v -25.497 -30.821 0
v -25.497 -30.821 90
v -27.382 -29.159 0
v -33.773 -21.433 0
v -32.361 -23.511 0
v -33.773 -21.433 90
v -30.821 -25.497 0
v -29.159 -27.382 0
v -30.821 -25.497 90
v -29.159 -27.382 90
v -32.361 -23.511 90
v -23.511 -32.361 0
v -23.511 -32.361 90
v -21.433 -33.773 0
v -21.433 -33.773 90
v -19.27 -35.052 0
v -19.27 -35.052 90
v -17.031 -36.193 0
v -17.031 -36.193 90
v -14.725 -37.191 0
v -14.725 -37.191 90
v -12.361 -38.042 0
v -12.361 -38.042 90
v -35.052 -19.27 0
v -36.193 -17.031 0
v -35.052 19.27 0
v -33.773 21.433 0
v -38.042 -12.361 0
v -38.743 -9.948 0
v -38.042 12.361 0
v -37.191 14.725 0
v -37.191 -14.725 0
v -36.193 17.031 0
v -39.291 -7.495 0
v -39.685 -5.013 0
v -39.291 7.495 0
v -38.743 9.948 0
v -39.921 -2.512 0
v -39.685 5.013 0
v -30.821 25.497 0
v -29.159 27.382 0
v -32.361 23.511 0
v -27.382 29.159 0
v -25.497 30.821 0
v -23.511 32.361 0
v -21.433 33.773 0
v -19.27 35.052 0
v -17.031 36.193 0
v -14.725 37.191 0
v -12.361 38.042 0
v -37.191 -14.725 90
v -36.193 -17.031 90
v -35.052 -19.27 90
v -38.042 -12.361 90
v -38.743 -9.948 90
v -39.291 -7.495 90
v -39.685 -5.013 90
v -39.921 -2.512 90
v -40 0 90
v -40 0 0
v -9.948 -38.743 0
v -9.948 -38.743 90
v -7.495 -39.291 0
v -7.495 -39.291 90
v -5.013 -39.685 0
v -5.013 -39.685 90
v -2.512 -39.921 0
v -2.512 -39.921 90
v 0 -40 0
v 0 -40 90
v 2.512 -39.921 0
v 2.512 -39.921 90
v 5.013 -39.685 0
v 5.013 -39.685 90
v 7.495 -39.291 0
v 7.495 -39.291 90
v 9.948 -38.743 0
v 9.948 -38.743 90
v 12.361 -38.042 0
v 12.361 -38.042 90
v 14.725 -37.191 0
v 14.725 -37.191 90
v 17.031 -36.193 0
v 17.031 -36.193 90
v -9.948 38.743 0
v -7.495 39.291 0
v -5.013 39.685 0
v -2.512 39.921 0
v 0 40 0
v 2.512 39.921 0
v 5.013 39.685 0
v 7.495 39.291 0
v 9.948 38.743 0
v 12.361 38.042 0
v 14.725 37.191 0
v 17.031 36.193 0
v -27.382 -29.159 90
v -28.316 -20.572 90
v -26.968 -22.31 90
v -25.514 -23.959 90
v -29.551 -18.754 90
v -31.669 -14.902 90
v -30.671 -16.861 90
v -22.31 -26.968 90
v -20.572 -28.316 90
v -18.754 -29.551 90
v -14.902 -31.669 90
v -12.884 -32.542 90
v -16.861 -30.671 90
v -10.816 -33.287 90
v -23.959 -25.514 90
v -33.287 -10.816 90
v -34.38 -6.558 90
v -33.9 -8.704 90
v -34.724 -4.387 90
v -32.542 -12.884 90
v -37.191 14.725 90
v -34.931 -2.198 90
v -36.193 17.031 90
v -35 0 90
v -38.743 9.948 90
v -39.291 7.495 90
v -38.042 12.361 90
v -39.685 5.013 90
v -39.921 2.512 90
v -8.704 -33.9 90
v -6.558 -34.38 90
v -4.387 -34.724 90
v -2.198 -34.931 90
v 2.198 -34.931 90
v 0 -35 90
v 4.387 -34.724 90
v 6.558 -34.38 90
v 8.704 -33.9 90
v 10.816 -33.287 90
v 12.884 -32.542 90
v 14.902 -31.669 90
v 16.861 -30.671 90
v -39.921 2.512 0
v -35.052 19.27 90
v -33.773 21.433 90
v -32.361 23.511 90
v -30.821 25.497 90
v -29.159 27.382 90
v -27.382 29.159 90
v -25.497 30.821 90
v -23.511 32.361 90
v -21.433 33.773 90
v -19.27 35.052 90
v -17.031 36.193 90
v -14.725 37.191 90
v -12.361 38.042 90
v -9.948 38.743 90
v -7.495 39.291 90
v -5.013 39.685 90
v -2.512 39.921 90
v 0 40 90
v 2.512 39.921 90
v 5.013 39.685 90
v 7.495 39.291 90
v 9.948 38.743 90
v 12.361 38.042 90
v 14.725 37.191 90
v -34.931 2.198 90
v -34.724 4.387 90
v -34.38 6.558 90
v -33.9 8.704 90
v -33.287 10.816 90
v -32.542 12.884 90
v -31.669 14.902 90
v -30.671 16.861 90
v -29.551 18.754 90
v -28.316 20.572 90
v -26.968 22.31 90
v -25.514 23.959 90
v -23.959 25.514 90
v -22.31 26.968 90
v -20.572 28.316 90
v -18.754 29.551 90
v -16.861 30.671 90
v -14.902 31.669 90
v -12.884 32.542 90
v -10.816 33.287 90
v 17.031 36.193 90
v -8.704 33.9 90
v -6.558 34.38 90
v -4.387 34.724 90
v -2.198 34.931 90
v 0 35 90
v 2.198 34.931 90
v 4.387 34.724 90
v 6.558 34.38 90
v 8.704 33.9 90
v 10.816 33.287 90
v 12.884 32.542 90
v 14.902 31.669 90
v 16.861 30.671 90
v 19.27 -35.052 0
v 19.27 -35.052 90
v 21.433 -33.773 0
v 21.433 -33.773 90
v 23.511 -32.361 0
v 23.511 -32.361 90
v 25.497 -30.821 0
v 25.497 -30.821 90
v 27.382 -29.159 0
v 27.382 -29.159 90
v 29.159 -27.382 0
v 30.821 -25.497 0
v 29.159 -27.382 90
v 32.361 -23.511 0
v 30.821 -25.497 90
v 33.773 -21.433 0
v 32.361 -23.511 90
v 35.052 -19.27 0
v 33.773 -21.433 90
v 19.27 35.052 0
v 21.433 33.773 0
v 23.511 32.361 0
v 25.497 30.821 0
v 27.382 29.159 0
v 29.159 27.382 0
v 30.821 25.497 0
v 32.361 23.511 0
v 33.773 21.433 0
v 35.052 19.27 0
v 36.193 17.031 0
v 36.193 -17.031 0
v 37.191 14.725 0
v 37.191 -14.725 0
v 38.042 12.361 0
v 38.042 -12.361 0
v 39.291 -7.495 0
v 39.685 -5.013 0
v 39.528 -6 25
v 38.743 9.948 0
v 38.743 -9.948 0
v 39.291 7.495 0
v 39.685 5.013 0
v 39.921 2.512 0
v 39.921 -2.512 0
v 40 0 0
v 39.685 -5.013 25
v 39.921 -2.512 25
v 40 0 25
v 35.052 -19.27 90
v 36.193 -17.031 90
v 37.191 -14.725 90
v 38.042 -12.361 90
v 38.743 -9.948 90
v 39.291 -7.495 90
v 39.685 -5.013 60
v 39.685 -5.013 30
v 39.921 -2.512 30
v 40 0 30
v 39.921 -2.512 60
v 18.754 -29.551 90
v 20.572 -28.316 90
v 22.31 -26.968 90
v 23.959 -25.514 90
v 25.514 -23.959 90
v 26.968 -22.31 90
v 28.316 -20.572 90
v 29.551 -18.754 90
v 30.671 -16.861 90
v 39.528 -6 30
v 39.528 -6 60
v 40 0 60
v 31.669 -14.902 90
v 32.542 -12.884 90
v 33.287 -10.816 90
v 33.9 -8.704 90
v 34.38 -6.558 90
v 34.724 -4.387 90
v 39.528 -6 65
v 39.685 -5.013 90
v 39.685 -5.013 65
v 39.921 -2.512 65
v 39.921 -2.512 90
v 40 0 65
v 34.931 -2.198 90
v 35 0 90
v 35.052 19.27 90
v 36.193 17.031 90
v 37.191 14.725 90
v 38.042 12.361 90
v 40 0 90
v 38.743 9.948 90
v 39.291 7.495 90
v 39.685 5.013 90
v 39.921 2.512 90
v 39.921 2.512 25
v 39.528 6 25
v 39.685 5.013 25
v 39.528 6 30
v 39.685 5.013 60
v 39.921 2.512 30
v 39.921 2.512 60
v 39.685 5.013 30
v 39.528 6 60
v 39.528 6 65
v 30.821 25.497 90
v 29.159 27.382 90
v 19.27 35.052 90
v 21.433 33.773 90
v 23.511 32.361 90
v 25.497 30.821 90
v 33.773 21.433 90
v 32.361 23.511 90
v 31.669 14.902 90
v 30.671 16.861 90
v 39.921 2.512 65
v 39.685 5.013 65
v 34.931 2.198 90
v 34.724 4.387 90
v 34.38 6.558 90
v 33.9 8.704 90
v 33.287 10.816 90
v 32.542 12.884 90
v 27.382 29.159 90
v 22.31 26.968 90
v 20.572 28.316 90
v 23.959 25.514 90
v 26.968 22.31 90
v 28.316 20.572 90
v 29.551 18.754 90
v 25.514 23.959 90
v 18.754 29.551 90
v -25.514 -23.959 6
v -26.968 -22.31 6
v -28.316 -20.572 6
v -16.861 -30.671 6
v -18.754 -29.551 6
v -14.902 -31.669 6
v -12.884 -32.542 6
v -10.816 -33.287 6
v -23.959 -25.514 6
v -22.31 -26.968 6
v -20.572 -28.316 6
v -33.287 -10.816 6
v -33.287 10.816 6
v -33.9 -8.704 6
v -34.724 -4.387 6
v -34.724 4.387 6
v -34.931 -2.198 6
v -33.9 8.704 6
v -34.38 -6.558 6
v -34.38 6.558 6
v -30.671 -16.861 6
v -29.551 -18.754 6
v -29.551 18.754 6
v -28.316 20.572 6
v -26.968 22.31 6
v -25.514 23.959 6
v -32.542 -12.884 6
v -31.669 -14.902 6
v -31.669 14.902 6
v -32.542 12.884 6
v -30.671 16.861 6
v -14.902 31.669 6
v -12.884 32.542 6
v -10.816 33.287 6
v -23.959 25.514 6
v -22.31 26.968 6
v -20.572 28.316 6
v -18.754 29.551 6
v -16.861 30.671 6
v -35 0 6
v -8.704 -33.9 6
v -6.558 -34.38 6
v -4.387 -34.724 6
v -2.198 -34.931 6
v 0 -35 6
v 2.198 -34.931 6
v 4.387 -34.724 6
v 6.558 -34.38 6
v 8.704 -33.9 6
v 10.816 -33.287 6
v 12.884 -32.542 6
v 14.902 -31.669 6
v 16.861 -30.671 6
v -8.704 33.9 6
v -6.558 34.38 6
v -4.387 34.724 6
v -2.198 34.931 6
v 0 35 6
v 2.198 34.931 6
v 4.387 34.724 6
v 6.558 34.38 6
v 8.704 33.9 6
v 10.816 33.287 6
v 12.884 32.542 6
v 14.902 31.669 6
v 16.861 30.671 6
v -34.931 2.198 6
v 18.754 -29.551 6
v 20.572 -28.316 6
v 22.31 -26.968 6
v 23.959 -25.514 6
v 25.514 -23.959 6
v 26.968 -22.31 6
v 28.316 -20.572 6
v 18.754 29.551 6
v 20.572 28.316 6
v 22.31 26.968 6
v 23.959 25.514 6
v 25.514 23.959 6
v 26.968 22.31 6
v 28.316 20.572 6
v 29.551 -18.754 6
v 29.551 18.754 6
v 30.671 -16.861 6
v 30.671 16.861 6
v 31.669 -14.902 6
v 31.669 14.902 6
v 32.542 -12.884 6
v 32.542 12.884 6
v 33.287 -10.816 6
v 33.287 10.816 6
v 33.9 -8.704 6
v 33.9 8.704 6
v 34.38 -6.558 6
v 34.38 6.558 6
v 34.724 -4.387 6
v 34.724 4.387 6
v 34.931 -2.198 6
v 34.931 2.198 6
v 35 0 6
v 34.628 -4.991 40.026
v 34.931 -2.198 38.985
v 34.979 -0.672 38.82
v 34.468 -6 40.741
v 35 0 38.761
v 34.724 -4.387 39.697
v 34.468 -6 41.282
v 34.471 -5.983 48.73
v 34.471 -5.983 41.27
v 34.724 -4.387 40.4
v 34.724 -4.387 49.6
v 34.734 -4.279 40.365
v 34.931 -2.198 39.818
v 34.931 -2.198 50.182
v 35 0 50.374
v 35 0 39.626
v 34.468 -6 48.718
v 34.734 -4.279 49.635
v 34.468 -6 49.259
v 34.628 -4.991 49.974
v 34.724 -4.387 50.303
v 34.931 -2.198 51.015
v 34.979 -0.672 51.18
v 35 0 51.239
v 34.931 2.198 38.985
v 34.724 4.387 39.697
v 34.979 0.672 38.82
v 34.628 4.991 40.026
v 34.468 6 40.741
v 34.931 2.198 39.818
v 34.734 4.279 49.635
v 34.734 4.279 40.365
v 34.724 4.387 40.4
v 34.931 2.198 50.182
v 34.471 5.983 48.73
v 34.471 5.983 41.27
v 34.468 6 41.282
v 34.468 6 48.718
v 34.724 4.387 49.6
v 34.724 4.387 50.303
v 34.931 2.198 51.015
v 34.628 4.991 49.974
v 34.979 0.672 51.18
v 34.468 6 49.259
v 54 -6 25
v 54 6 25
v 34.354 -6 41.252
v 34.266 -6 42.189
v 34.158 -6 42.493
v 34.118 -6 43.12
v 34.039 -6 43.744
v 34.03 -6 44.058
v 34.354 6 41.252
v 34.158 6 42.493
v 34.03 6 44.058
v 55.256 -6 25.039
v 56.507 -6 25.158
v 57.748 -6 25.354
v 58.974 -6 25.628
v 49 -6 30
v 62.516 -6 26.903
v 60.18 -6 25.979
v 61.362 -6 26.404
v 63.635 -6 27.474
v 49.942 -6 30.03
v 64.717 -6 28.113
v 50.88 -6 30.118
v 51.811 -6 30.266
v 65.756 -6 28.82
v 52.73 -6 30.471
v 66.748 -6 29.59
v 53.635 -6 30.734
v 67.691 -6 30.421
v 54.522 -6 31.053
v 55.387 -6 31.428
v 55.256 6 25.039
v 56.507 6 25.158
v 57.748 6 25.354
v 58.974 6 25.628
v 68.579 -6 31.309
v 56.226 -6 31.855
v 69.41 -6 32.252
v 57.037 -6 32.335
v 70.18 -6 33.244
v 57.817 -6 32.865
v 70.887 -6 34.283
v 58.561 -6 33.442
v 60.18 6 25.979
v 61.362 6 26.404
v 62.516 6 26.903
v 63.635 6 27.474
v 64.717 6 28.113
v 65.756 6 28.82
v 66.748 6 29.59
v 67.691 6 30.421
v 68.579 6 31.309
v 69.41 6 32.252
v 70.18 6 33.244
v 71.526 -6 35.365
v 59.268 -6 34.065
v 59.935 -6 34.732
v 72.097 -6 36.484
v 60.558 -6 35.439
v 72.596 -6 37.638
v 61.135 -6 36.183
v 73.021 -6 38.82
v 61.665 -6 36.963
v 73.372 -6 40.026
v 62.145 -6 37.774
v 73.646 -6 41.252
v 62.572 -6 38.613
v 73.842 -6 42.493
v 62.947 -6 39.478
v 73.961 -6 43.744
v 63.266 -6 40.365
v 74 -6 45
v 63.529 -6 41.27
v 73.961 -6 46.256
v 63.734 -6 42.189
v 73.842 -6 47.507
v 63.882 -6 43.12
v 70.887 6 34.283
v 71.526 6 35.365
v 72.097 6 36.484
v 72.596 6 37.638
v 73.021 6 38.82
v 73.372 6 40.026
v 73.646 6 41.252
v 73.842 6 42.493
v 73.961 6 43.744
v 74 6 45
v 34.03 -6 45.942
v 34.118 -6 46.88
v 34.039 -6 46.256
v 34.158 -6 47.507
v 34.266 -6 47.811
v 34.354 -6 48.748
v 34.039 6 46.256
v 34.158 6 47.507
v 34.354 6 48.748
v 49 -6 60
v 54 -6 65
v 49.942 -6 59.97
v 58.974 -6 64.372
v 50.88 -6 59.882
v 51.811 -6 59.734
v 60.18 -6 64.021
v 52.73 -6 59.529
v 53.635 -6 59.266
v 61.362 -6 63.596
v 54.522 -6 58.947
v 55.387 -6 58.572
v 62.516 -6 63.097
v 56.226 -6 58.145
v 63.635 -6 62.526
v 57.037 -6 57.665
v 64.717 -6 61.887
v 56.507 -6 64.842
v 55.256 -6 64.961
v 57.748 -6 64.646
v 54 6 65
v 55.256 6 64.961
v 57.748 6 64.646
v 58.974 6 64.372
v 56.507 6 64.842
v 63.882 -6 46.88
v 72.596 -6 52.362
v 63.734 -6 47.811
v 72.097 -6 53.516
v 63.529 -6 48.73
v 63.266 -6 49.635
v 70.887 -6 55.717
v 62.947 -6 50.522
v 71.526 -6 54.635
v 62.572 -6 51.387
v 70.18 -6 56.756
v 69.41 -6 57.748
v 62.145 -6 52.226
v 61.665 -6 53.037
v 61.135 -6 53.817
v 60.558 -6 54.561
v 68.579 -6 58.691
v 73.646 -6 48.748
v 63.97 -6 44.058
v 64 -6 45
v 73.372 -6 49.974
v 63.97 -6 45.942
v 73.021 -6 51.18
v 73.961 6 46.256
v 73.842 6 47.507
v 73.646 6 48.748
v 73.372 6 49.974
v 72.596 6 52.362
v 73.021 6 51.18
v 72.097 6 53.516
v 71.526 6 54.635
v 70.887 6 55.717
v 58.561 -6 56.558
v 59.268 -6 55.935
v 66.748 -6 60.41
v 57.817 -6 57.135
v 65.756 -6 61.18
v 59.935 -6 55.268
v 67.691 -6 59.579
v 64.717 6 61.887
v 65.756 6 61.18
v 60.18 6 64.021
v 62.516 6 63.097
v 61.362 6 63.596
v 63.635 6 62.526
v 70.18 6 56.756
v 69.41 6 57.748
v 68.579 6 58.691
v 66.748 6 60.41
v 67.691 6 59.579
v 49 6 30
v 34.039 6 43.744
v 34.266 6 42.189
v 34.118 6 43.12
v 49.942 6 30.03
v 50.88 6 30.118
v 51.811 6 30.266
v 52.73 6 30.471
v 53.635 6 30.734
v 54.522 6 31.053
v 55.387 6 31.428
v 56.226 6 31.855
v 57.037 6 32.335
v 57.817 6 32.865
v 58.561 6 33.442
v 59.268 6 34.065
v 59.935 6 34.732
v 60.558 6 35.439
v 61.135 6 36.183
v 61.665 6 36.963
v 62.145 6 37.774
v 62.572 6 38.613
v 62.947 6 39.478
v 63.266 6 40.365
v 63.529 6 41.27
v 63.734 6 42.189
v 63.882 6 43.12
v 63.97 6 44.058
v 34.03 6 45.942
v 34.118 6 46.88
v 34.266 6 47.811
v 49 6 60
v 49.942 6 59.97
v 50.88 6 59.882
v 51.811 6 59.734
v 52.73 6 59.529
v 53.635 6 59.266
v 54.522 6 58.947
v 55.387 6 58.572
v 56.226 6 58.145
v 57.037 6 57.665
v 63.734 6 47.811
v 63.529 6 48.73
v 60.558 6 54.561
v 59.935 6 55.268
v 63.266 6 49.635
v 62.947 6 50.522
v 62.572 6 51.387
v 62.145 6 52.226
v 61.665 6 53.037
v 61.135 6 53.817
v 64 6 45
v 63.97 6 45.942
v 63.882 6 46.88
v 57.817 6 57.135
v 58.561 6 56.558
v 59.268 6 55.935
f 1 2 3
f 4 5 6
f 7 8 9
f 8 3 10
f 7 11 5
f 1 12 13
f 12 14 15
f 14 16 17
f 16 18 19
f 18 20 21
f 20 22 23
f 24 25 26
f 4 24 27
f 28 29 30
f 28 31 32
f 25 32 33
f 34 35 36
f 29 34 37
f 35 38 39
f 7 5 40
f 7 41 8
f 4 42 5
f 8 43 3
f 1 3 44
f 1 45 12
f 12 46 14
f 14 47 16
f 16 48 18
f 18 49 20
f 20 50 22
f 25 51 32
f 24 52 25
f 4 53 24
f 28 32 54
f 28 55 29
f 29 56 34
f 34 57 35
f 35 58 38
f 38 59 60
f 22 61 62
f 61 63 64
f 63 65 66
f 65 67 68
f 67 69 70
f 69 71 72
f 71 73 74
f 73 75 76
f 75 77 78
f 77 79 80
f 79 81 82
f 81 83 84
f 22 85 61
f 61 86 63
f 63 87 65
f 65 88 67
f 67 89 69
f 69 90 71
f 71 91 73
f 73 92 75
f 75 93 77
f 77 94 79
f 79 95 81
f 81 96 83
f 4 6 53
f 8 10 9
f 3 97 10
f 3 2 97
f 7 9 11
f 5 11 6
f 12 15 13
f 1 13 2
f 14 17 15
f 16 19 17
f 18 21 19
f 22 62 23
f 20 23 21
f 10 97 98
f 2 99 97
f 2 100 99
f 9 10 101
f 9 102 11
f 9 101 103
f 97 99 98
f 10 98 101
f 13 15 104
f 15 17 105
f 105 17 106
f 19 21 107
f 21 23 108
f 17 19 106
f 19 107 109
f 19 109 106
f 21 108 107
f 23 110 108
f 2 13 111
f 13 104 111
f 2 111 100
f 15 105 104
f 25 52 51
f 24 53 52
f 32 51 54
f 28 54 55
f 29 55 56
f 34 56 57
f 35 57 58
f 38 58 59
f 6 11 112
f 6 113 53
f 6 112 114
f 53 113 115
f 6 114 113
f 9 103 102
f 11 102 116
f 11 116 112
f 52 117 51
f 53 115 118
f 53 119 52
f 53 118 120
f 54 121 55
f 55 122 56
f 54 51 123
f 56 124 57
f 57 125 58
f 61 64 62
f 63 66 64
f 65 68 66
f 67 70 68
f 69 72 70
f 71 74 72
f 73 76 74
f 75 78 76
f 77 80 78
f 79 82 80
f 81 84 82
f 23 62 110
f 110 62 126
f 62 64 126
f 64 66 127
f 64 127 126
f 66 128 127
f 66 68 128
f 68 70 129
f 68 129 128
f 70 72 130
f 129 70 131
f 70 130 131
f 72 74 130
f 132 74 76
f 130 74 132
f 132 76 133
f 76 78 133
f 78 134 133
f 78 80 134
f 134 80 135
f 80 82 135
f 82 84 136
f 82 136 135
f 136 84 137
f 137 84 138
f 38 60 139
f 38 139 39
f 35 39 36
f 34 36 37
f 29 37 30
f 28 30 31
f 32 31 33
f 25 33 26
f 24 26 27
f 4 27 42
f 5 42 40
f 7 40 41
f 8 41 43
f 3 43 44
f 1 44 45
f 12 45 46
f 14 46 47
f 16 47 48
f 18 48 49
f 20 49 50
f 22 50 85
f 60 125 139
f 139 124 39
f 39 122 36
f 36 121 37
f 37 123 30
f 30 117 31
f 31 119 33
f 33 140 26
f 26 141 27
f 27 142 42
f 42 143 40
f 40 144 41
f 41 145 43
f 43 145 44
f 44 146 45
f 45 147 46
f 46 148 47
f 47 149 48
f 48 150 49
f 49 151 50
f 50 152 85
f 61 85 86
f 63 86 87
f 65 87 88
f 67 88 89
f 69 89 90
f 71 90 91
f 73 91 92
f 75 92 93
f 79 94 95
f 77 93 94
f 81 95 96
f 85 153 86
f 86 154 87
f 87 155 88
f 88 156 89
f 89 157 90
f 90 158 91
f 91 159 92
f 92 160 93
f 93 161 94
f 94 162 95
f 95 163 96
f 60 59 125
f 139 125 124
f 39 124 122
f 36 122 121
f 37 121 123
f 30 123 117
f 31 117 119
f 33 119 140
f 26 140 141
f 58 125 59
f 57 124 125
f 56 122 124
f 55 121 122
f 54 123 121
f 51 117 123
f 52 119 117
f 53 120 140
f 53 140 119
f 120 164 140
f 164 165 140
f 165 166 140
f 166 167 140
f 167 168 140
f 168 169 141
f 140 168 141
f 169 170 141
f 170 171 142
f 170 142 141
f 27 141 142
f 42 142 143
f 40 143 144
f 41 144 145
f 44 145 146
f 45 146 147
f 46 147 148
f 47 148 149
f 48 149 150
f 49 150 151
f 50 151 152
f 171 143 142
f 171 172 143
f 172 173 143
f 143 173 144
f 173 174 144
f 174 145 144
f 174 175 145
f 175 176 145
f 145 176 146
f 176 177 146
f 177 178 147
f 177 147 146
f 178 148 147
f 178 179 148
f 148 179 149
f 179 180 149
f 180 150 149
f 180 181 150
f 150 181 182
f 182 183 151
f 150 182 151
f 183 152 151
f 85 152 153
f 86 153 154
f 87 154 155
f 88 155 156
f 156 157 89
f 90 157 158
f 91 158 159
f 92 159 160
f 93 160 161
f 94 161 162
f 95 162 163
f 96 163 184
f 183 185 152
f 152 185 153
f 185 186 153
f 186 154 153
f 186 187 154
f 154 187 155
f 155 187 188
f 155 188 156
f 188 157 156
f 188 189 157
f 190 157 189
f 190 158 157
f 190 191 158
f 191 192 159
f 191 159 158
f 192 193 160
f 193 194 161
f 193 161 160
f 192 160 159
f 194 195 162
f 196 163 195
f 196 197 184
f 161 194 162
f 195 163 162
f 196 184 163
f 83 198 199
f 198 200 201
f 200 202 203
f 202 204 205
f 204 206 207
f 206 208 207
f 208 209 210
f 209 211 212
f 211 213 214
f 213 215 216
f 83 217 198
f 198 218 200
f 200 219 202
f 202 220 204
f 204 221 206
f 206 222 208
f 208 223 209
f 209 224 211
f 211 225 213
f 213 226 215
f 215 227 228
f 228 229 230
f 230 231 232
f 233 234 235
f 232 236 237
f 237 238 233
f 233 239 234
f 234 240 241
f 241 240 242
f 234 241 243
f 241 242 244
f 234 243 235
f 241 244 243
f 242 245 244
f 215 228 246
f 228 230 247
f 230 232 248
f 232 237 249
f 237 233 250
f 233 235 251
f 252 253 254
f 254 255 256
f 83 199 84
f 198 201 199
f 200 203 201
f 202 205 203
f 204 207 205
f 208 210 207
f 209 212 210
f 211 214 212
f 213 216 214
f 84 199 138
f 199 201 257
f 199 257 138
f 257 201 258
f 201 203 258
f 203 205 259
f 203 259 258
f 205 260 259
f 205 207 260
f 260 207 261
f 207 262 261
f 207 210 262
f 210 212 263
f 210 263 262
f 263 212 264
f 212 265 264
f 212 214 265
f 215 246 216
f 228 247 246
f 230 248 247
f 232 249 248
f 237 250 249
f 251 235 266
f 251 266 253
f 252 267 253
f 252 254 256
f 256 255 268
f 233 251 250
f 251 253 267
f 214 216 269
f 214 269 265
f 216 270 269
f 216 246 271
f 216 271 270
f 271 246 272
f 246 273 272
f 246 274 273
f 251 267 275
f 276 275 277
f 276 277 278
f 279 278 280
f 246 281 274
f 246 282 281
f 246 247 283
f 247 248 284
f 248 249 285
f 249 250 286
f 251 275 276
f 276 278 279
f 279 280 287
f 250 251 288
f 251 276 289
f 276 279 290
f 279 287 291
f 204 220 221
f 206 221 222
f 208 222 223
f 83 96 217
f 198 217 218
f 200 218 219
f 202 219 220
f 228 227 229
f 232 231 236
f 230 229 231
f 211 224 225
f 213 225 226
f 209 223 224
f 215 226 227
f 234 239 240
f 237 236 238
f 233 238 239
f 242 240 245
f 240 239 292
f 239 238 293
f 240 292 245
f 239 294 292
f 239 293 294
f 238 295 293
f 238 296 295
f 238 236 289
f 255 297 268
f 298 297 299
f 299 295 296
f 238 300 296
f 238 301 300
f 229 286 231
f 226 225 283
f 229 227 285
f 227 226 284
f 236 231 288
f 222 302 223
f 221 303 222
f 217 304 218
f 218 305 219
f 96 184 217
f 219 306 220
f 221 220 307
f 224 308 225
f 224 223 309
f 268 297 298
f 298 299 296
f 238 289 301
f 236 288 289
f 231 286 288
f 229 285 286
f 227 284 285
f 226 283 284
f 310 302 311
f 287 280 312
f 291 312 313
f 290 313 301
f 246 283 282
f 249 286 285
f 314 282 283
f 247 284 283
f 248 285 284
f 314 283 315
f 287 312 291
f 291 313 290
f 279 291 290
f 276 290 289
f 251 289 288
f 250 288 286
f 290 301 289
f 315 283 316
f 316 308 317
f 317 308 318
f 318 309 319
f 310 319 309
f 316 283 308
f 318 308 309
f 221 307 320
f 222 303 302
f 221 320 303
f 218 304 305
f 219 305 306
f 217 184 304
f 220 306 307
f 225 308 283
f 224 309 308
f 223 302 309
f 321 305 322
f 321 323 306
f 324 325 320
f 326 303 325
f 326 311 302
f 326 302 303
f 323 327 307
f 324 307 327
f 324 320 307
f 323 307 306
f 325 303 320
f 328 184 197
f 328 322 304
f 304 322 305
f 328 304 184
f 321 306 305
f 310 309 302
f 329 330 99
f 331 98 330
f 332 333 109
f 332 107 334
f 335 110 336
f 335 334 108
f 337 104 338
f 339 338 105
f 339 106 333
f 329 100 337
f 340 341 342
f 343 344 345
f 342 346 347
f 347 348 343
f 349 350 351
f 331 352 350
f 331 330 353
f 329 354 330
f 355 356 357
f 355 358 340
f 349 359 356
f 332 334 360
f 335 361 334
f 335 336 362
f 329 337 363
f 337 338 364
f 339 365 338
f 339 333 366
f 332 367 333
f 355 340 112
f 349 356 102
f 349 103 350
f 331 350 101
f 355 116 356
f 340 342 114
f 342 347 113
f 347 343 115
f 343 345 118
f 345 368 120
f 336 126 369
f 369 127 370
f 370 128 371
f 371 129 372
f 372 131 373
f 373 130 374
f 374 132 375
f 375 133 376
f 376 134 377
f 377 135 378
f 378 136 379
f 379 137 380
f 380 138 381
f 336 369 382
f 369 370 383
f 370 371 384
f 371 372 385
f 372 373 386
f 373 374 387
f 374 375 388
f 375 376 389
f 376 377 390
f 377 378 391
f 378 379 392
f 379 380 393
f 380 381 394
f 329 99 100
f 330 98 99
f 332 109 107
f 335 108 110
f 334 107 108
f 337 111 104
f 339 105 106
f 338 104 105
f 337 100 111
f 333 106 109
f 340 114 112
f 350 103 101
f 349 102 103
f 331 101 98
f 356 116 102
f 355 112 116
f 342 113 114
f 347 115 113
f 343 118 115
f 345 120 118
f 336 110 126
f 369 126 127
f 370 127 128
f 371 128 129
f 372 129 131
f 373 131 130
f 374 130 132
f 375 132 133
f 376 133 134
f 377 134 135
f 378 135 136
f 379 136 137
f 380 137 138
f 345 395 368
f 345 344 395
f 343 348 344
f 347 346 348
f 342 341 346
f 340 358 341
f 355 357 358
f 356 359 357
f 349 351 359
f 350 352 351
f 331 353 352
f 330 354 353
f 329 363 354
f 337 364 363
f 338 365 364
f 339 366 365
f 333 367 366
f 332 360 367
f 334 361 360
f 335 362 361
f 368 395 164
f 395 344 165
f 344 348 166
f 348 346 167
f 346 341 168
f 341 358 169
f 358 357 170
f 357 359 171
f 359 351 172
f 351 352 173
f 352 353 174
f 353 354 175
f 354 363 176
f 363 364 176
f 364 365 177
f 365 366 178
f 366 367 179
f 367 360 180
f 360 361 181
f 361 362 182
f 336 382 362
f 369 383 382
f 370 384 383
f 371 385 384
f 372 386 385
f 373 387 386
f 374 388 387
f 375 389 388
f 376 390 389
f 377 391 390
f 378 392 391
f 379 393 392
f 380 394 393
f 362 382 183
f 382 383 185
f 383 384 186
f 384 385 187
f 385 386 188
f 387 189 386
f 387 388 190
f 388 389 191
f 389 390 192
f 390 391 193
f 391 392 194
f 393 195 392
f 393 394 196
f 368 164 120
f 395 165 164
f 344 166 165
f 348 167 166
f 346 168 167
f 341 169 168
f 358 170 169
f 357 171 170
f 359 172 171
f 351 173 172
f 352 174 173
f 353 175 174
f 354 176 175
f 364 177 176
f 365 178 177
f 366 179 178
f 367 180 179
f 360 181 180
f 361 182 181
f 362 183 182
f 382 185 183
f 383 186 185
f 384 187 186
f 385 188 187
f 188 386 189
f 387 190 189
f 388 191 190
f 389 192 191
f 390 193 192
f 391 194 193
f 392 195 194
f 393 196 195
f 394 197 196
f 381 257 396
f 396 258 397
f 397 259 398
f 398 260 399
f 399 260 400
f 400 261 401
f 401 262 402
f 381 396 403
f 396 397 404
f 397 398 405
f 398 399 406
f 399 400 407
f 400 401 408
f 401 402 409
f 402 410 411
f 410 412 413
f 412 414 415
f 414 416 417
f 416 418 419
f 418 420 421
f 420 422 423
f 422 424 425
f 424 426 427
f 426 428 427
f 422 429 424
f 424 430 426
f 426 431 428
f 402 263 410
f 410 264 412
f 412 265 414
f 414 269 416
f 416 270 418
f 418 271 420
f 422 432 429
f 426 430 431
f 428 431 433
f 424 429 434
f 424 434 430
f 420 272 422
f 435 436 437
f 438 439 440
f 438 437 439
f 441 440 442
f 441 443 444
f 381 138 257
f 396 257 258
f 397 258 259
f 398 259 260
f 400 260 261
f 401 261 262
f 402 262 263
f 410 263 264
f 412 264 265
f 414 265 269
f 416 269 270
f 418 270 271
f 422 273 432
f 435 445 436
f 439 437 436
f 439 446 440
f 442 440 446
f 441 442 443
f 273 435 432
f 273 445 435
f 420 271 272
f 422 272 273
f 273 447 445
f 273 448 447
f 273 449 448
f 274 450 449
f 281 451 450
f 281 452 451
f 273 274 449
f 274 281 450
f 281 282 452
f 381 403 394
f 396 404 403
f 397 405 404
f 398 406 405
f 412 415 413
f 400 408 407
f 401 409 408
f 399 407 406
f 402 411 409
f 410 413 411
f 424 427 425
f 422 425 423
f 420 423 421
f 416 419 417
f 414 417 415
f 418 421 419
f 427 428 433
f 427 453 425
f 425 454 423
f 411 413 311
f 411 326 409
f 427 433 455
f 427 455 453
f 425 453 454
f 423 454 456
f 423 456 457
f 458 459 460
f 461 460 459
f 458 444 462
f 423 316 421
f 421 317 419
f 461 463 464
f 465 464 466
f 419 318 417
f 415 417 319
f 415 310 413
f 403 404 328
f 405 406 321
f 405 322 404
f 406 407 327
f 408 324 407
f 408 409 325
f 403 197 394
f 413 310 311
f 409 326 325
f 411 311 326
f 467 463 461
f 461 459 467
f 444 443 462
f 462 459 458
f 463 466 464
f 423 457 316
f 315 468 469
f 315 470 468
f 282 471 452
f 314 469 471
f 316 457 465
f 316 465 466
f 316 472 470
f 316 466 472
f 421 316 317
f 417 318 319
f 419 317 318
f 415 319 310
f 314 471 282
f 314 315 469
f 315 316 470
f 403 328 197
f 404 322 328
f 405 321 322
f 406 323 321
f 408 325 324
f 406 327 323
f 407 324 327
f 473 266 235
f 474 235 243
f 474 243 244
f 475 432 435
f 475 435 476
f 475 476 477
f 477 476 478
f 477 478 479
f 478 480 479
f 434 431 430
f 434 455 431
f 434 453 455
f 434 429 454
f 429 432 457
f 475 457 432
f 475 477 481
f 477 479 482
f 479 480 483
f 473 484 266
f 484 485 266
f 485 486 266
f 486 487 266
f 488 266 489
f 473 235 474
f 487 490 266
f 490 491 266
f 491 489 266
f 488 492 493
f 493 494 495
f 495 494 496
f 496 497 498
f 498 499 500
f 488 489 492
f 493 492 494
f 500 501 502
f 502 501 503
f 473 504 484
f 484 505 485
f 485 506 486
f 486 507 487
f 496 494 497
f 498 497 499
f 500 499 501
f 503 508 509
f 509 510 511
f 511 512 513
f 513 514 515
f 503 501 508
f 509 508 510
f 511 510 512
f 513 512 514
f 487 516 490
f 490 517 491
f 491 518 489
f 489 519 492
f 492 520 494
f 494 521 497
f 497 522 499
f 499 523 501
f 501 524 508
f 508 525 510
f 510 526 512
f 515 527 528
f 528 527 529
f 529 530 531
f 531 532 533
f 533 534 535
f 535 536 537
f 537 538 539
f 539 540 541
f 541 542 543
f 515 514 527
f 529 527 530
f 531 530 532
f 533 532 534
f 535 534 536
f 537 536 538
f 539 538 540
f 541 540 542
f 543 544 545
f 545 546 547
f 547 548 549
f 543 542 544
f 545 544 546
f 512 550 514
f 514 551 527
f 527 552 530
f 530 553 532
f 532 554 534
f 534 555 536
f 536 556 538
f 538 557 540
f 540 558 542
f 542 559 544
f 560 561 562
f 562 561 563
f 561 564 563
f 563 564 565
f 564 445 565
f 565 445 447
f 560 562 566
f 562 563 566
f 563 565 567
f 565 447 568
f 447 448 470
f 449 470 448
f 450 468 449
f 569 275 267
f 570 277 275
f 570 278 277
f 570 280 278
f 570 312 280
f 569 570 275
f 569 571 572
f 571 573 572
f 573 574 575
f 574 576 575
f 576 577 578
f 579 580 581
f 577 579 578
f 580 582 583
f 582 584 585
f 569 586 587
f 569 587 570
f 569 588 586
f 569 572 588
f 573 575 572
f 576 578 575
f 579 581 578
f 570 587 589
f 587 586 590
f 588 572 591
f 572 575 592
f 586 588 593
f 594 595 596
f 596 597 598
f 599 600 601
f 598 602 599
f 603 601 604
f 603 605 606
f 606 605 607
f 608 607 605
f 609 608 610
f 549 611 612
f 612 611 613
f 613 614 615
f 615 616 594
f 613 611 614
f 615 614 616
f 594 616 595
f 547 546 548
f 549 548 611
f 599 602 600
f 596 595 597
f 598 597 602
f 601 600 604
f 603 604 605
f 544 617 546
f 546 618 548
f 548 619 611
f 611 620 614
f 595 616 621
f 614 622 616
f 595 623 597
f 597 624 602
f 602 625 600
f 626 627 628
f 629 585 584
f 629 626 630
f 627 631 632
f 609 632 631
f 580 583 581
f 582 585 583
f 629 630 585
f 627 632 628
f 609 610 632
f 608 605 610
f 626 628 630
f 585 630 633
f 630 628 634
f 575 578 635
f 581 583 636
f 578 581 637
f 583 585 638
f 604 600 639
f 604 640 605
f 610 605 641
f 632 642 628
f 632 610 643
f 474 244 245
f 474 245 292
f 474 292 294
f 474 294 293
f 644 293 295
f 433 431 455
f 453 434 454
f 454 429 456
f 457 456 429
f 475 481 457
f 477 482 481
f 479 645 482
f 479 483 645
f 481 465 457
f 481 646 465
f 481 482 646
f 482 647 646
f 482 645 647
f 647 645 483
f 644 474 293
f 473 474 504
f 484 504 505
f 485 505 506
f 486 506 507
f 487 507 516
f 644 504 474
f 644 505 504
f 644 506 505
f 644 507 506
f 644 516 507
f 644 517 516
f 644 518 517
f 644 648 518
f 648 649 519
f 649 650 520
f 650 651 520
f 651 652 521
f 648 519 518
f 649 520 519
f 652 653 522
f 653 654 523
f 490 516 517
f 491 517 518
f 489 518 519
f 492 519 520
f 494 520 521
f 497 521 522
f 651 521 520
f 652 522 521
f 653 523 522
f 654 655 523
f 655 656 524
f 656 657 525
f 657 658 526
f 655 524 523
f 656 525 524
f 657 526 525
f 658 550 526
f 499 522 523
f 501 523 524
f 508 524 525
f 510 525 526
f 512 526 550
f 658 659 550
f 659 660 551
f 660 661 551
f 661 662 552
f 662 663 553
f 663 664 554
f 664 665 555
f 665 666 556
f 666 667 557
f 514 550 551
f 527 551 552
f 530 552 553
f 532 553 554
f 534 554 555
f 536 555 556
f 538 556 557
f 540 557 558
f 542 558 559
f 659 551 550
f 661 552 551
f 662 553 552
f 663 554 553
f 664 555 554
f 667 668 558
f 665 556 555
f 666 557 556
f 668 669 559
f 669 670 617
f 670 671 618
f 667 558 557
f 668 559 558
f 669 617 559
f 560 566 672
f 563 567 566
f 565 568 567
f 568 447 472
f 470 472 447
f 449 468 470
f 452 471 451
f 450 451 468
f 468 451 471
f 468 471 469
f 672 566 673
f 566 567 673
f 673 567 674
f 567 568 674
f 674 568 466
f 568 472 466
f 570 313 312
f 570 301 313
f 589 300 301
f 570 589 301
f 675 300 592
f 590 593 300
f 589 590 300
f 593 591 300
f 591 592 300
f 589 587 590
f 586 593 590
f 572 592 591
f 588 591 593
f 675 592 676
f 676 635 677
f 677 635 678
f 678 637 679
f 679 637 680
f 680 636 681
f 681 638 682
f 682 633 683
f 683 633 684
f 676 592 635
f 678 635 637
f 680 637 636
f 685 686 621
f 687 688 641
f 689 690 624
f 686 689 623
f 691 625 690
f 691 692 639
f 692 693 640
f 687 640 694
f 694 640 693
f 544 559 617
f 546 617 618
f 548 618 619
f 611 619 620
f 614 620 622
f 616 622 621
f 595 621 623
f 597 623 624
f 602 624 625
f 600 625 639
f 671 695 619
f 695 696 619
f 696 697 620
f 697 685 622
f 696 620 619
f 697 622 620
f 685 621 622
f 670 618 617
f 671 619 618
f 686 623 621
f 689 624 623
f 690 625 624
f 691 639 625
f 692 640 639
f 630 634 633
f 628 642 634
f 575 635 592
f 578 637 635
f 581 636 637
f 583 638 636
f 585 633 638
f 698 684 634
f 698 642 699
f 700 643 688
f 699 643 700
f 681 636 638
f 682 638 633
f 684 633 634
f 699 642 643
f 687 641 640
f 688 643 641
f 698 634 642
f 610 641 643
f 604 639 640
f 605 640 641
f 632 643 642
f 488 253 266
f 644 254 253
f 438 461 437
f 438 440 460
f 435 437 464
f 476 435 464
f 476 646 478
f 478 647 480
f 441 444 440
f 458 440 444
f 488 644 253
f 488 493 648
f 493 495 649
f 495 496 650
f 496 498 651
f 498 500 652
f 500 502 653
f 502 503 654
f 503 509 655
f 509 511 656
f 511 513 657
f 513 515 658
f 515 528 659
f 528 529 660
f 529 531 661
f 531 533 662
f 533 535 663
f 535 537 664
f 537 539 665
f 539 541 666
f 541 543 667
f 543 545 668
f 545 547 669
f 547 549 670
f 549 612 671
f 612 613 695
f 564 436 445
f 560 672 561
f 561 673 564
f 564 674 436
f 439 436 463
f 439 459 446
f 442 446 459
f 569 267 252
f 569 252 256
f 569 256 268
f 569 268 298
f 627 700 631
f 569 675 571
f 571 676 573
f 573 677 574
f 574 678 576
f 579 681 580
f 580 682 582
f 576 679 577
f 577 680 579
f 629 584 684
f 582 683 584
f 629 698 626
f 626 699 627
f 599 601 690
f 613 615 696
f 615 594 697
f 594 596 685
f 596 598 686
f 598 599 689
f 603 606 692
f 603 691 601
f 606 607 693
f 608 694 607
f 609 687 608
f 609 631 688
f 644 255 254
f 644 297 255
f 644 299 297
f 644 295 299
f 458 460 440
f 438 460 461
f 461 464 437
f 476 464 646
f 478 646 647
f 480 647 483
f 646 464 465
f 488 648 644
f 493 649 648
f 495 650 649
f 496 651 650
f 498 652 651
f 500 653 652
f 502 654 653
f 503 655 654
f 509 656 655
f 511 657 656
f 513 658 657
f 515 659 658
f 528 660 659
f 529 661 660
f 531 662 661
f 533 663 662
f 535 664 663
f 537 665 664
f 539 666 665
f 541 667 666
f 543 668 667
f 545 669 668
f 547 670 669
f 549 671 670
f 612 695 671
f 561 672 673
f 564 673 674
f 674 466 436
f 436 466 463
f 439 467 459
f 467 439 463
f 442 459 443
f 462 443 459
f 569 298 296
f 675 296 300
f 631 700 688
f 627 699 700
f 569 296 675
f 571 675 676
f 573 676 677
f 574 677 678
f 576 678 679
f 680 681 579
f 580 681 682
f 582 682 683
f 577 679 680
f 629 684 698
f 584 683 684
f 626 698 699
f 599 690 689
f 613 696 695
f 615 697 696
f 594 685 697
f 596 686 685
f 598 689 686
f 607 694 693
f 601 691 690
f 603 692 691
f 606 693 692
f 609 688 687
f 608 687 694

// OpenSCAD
$fn = 100;

module d2(width, height){
    r = height/2;
    rect_w = width - r;
    union(){
        translate([0, -height/2]) square([rect_w, height]);
        translate([rect_w, 0]) circle(r=r);
    }
}

module handle(){
    outer_w = 35;
    outer_h = 40;
    inner_w = 25;
    inner_h = 30;
    depth = 12;
    difference(){
        rotate([90,0,0]) linear_extrude(height=depth, center=true) d2(outer_w, outer_h);
        rotate([90,0,0]) linear_extrude(height=depth+0.2, center=true) d2(inner_w, inner_h);
    }
}

module mug(){
    difference(){
        cylinder(h=90, r=40);
        translate([0,0,6]) cylinder(h=84, r=35);
    }
}

union(){
    mug();
    translate([39,0,45]) handle();
}
